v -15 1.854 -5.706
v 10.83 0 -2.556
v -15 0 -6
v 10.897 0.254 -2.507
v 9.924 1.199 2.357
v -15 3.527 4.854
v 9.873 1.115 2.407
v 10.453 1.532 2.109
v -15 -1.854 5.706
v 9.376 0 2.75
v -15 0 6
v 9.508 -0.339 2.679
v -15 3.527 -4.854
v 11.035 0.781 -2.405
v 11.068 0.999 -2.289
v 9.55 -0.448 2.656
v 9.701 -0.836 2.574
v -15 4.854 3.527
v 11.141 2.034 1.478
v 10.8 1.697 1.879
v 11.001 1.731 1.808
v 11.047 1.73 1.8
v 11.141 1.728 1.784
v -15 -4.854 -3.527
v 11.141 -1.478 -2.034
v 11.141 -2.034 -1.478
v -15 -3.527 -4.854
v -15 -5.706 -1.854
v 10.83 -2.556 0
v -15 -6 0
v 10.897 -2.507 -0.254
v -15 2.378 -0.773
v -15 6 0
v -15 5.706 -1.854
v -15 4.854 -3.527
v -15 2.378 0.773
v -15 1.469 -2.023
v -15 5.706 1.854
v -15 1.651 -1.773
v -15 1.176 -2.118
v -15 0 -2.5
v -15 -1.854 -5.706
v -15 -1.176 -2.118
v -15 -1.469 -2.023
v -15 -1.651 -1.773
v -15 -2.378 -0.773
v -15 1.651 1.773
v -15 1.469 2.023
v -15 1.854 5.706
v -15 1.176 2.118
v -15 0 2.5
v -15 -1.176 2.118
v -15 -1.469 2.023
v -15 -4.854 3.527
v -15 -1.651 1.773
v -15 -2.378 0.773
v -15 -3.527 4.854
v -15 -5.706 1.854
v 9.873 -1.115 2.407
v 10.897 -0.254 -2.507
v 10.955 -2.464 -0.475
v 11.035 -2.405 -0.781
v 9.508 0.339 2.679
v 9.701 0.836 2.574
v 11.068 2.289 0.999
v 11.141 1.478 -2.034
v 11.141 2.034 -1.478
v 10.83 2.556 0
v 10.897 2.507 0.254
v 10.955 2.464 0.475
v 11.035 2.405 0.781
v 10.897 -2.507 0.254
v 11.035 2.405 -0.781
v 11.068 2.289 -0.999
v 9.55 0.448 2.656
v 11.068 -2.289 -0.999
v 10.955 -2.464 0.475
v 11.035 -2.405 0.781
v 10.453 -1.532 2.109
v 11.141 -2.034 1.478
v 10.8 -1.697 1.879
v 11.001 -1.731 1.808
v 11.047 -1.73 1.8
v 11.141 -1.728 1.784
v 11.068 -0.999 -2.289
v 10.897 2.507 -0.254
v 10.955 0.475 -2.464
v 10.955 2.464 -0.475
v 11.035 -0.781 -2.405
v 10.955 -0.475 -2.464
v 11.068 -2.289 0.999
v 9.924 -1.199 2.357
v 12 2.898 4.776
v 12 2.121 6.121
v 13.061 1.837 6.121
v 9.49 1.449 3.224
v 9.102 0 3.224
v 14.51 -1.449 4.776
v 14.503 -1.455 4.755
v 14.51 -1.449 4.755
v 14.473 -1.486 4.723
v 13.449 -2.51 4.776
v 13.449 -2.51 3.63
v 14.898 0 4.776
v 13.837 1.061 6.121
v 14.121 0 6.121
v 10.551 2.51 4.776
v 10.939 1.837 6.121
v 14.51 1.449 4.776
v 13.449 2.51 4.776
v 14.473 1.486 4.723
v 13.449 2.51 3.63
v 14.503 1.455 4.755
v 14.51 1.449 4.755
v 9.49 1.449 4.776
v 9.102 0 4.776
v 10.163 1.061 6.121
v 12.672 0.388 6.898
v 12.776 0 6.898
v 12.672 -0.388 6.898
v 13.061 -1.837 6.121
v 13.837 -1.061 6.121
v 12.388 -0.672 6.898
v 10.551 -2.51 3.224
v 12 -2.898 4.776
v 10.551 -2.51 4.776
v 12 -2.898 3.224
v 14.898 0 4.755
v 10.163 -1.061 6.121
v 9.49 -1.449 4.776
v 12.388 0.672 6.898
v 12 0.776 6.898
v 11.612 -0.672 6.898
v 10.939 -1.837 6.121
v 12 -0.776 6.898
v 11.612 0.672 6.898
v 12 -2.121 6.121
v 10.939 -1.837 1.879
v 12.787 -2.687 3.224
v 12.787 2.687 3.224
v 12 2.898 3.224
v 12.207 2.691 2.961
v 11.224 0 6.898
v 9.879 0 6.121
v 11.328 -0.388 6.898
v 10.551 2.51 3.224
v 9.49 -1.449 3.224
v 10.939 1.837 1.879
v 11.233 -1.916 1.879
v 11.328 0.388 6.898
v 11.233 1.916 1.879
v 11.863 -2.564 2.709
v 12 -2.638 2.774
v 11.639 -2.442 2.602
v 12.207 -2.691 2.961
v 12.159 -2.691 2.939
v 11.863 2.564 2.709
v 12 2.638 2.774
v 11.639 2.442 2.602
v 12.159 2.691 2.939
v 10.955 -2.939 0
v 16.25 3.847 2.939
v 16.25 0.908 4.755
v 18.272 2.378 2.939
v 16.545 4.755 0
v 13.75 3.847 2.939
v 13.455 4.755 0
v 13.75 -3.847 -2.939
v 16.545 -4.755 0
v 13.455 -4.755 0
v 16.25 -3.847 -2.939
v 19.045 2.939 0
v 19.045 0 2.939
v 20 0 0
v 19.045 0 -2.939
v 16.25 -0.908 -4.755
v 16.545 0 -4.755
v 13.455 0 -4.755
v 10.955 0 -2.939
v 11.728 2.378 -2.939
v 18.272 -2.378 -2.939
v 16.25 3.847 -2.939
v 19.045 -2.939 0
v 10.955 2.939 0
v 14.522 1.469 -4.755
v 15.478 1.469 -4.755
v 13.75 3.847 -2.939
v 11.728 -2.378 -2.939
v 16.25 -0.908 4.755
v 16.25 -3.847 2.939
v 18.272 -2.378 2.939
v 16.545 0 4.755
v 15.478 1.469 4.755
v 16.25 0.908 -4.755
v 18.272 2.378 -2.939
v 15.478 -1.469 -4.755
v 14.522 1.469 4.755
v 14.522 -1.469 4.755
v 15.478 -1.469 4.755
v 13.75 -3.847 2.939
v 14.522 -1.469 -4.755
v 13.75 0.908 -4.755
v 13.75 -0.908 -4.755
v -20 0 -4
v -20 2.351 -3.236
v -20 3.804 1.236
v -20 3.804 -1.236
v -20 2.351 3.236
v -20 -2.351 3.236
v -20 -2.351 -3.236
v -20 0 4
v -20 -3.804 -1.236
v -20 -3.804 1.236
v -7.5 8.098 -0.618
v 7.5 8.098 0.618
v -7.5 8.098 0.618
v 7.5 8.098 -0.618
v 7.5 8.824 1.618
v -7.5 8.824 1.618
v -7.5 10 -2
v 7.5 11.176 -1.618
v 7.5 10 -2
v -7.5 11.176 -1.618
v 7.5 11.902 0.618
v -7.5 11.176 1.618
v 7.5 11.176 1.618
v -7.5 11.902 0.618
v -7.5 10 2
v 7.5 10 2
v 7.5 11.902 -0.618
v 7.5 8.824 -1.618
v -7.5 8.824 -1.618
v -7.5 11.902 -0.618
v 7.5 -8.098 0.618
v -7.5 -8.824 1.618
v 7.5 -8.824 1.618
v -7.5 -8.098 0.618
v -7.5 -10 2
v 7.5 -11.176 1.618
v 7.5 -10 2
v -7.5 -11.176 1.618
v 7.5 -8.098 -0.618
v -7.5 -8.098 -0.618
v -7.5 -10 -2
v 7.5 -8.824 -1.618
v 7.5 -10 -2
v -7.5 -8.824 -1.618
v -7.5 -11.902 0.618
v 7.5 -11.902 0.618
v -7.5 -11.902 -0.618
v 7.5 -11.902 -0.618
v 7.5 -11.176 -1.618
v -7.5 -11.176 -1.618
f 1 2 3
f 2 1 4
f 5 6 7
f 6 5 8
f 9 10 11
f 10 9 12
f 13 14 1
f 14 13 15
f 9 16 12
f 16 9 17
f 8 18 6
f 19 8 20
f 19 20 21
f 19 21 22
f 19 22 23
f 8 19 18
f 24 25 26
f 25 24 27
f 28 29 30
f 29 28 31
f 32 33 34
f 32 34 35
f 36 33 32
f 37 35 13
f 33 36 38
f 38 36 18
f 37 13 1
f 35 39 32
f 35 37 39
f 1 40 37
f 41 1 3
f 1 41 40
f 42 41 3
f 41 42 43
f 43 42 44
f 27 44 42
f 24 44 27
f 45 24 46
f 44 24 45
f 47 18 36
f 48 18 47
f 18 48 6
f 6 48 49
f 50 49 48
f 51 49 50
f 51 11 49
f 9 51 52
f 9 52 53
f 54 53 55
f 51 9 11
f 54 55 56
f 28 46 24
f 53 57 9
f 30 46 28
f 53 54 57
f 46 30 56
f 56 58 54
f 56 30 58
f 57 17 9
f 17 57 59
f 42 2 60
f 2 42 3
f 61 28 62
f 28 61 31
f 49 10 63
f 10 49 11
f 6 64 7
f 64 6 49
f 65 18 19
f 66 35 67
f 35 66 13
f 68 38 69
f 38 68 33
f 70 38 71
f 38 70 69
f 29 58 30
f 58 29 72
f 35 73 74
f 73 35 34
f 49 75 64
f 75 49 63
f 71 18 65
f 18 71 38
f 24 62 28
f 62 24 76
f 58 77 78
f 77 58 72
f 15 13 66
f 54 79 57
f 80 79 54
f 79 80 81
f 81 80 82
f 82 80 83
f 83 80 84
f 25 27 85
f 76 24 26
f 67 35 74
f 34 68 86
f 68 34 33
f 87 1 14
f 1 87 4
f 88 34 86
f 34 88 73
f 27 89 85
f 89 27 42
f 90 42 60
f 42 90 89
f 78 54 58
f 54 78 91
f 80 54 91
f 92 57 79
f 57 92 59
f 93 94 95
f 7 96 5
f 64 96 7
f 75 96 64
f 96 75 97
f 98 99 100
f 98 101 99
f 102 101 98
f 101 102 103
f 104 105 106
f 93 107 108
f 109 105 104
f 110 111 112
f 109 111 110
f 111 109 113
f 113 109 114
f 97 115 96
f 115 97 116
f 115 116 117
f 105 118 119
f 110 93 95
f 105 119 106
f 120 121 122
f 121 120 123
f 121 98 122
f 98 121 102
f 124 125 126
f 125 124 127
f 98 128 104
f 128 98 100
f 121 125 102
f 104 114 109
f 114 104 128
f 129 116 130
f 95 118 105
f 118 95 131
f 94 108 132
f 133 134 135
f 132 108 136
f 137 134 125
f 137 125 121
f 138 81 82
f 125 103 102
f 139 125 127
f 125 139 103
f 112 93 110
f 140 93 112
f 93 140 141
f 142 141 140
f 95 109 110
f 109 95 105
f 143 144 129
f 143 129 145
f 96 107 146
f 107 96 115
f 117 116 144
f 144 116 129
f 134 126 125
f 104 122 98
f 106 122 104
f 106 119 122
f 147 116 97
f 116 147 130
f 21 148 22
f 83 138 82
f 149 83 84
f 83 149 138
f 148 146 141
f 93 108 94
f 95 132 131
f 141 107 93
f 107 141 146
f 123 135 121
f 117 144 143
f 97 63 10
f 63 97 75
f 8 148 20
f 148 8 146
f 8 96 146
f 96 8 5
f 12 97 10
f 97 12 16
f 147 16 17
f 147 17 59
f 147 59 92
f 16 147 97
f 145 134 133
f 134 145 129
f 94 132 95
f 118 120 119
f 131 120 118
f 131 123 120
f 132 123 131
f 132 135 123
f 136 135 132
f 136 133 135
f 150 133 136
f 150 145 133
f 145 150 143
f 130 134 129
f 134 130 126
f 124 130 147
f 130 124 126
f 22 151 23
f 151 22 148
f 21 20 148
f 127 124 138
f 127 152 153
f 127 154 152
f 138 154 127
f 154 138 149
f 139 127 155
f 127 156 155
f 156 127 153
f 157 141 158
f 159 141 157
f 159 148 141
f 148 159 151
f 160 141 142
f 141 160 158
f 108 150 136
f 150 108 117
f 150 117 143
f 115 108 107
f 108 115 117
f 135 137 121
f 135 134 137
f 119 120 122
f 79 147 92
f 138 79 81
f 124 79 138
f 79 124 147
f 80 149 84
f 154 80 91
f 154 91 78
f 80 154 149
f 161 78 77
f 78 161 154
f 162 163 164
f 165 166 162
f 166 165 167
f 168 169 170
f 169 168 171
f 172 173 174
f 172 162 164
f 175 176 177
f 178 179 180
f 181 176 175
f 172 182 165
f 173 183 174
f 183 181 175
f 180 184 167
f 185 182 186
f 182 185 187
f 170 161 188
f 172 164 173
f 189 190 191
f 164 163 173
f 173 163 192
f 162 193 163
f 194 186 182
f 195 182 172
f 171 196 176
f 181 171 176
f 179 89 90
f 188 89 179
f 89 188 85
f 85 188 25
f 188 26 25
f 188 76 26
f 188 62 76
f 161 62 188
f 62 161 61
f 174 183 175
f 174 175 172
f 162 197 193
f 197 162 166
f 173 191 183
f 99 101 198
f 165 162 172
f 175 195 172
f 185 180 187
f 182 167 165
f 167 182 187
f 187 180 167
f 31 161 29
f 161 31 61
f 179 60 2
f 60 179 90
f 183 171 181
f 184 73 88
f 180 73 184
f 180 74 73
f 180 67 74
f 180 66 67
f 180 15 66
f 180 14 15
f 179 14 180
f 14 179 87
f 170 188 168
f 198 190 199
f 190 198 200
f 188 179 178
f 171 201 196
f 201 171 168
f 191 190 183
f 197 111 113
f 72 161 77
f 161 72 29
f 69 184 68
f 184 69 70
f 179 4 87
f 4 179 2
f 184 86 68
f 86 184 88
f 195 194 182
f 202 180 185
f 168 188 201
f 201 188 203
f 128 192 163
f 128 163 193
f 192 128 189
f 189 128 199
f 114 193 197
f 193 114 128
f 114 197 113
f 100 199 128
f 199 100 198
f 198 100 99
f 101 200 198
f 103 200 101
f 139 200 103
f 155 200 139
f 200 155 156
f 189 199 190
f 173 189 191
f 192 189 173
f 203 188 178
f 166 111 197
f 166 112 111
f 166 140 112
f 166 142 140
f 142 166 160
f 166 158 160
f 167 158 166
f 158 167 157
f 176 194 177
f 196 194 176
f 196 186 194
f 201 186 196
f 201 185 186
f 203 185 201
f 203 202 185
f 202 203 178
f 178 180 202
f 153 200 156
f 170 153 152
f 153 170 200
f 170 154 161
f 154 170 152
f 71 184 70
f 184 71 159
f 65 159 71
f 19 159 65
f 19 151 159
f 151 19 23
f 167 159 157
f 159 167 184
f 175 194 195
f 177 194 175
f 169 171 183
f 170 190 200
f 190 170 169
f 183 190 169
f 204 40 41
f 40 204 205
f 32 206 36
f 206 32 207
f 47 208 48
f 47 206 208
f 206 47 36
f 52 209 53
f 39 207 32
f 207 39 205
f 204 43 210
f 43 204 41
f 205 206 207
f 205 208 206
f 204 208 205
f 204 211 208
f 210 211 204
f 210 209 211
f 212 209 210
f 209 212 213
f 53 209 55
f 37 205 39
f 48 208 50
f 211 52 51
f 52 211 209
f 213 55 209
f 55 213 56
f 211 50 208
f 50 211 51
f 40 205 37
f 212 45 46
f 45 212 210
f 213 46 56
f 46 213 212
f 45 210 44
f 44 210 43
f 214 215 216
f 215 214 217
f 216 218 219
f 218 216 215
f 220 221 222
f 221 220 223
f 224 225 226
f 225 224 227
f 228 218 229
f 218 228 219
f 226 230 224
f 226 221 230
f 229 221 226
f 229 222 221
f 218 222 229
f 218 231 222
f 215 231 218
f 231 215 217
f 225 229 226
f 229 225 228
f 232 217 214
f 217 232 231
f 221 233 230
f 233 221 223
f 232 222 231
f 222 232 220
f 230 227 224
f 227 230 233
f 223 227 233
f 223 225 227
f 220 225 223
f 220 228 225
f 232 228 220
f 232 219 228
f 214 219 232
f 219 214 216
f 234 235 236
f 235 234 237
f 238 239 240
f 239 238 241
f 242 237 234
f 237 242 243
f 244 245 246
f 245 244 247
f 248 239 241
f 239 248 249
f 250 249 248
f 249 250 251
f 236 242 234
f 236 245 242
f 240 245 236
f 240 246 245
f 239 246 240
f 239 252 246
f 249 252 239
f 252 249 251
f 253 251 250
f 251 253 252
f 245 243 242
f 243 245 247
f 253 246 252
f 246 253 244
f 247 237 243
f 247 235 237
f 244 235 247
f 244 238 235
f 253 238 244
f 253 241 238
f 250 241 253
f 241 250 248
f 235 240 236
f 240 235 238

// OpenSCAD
// Futuristic Spaceship
module spaceship() {
    // Central Body
    rotate([0, 90, 0])
    cylinder(h=30, r1=6, r2=2, center=true, $fn=20);

    // Cockpit
    translate([12, 0, 4])
    sphere(r=3, $fn=12);

    // Nose
    translate([15, 0, 0])
    sphere(r=5, $fn=10);

    // Tail
    translate([-15, 0, 0])
    rotate([0, 90, 0])
    cylinder(h=10, r1=4, r2=1, center=true, $fn=10);

    // Wings
    translate([0, 10, 0])
    rotate([0, 90, 0])
    cylinder(h=15, r=2, center=true, $fn=10);

    translate([0, -10, 0])
    rotate([0, 90, 0])
    cylinder(h=15, r=2, center=true, $fn=10);
}

union() {
    spaceship();
}
